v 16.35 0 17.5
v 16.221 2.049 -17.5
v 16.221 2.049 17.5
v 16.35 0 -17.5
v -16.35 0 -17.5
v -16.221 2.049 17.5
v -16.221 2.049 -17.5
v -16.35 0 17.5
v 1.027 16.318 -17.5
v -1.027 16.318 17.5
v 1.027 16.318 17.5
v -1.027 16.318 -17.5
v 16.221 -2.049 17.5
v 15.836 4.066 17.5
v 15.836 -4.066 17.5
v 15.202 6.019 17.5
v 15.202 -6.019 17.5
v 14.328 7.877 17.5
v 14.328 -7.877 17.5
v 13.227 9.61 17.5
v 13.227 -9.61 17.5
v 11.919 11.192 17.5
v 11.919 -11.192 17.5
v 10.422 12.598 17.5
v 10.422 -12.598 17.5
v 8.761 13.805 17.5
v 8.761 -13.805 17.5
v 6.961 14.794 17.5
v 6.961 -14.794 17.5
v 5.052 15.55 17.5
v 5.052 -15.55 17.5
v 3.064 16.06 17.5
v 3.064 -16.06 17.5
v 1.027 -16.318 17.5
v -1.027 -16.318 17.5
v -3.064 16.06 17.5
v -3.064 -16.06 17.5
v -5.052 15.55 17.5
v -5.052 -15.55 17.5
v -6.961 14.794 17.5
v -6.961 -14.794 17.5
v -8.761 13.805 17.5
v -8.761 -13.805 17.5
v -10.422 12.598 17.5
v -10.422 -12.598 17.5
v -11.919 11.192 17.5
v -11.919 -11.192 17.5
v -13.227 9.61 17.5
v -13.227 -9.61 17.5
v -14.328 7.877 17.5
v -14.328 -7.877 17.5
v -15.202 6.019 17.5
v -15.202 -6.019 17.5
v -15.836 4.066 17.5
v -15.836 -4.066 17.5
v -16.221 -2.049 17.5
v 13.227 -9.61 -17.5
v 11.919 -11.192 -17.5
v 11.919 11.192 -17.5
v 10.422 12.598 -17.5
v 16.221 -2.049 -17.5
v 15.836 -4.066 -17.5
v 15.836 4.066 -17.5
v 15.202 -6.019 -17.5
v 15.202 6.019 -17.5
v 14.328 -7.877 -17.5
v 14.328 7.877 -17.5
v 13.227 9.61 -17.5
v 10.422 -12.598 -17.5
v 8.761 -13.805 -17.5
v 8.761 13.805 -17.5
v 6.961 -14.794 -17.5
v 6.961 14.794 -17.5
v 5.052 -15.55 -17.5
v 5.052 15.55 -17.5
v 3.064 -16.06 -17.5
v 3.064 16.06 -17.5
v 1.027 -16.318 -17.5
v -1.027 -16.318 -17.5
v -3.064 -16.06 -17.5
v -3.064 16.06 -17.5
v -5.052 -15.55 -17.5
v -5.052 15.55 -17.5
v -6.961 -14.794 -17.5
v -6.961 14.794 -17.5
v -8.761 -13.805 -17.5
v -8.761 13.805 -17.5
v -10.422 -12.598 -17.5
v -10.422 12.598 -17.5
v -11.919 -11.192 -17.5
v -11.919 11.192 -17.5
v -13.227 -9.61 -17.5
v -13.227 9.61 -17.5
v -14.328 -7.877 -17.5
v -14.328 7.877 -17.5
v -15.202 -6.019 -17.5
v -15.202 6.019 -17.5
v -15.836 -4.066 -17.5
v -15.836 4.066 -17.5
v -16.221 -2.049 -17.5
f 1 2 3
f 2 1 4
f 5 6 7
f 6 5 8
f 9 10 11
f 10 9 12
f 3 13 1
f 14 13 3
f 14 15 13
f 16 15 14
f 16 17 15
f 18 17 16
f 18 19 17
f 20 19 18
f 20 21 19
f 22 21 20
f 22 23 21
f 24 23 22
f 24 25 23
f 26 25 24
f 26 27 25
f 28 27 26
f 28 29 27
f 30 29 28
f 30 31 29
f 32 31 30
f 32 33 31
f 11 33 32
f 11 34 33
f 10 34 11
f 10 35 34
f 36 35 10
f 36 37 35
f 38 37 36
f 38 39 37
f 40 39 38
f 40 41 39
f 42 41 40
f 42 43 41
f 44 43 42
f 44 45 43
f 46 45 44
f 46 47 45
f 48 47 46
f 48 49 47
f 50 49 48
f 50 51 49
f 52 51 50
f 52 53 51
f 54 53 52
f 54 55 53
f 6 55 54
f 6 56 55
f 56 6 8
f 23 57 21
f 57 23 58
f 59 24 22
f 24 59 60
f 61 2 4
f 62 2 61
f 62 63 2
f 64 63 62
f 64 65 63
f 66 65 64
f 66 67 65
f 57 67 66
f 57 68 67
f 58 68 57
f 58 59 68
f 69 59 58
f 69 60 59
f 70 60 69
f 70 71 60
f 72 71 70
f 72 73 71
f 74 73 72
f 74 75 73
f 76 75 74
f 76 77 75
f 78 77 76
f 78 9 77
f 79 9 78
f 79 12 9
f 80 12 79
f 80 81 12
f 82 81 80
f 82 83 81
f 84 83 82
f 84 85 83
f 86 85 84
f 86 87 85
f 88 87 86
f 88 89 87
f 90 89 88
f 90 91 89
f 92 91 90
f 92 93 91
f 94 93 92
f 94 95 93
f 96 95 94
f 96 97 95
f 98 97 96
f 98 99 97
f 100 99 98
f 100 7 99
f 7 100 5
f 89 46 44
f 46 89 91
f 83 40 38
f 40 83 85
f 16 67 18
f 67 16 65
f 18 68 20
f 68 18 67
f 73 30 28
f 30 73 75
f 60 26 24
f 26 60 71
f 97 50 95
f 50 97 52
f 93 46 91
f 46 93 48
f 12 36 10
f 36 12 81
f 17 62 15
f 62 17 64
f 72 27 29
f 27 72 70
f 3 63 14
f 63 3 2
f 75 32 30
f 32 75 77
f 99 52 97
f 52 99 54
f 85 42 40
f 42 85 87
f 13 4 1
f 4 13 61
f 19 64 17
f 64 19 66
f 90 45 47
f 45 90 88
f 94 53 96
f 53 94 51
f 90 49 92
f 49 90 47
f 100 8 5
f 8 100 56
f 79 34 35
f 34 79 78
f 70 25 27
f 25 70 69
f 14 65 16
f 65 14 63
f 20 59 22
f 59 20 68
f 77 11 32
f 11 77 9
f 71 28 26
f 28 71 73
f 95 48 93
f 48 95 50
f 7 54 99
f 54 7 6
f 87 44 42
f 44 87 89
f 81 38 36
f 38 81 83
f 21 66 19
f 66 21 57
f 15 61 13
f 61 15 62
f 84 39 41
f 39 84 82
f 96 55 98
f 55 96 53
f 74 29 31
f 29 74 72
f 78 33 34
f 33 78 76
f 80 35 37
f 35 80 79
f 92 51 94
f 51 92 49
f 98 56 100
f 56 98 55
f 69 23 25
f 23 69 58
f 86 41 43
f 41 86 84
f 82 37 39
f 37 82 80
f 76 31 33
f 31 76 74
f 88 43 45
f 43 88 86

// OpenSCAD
$fn = 50;


difference() {
	union() {
		translate(v = [0, 0, -17.5000000000]) {
			cylinder(h = 35, r = 16.3500000000);
		}
	}
	union() {
		translate(v = [0, 0, -100.0000000000]) {
			cylinder(h = 200, r = 0);
		}
	}
}
